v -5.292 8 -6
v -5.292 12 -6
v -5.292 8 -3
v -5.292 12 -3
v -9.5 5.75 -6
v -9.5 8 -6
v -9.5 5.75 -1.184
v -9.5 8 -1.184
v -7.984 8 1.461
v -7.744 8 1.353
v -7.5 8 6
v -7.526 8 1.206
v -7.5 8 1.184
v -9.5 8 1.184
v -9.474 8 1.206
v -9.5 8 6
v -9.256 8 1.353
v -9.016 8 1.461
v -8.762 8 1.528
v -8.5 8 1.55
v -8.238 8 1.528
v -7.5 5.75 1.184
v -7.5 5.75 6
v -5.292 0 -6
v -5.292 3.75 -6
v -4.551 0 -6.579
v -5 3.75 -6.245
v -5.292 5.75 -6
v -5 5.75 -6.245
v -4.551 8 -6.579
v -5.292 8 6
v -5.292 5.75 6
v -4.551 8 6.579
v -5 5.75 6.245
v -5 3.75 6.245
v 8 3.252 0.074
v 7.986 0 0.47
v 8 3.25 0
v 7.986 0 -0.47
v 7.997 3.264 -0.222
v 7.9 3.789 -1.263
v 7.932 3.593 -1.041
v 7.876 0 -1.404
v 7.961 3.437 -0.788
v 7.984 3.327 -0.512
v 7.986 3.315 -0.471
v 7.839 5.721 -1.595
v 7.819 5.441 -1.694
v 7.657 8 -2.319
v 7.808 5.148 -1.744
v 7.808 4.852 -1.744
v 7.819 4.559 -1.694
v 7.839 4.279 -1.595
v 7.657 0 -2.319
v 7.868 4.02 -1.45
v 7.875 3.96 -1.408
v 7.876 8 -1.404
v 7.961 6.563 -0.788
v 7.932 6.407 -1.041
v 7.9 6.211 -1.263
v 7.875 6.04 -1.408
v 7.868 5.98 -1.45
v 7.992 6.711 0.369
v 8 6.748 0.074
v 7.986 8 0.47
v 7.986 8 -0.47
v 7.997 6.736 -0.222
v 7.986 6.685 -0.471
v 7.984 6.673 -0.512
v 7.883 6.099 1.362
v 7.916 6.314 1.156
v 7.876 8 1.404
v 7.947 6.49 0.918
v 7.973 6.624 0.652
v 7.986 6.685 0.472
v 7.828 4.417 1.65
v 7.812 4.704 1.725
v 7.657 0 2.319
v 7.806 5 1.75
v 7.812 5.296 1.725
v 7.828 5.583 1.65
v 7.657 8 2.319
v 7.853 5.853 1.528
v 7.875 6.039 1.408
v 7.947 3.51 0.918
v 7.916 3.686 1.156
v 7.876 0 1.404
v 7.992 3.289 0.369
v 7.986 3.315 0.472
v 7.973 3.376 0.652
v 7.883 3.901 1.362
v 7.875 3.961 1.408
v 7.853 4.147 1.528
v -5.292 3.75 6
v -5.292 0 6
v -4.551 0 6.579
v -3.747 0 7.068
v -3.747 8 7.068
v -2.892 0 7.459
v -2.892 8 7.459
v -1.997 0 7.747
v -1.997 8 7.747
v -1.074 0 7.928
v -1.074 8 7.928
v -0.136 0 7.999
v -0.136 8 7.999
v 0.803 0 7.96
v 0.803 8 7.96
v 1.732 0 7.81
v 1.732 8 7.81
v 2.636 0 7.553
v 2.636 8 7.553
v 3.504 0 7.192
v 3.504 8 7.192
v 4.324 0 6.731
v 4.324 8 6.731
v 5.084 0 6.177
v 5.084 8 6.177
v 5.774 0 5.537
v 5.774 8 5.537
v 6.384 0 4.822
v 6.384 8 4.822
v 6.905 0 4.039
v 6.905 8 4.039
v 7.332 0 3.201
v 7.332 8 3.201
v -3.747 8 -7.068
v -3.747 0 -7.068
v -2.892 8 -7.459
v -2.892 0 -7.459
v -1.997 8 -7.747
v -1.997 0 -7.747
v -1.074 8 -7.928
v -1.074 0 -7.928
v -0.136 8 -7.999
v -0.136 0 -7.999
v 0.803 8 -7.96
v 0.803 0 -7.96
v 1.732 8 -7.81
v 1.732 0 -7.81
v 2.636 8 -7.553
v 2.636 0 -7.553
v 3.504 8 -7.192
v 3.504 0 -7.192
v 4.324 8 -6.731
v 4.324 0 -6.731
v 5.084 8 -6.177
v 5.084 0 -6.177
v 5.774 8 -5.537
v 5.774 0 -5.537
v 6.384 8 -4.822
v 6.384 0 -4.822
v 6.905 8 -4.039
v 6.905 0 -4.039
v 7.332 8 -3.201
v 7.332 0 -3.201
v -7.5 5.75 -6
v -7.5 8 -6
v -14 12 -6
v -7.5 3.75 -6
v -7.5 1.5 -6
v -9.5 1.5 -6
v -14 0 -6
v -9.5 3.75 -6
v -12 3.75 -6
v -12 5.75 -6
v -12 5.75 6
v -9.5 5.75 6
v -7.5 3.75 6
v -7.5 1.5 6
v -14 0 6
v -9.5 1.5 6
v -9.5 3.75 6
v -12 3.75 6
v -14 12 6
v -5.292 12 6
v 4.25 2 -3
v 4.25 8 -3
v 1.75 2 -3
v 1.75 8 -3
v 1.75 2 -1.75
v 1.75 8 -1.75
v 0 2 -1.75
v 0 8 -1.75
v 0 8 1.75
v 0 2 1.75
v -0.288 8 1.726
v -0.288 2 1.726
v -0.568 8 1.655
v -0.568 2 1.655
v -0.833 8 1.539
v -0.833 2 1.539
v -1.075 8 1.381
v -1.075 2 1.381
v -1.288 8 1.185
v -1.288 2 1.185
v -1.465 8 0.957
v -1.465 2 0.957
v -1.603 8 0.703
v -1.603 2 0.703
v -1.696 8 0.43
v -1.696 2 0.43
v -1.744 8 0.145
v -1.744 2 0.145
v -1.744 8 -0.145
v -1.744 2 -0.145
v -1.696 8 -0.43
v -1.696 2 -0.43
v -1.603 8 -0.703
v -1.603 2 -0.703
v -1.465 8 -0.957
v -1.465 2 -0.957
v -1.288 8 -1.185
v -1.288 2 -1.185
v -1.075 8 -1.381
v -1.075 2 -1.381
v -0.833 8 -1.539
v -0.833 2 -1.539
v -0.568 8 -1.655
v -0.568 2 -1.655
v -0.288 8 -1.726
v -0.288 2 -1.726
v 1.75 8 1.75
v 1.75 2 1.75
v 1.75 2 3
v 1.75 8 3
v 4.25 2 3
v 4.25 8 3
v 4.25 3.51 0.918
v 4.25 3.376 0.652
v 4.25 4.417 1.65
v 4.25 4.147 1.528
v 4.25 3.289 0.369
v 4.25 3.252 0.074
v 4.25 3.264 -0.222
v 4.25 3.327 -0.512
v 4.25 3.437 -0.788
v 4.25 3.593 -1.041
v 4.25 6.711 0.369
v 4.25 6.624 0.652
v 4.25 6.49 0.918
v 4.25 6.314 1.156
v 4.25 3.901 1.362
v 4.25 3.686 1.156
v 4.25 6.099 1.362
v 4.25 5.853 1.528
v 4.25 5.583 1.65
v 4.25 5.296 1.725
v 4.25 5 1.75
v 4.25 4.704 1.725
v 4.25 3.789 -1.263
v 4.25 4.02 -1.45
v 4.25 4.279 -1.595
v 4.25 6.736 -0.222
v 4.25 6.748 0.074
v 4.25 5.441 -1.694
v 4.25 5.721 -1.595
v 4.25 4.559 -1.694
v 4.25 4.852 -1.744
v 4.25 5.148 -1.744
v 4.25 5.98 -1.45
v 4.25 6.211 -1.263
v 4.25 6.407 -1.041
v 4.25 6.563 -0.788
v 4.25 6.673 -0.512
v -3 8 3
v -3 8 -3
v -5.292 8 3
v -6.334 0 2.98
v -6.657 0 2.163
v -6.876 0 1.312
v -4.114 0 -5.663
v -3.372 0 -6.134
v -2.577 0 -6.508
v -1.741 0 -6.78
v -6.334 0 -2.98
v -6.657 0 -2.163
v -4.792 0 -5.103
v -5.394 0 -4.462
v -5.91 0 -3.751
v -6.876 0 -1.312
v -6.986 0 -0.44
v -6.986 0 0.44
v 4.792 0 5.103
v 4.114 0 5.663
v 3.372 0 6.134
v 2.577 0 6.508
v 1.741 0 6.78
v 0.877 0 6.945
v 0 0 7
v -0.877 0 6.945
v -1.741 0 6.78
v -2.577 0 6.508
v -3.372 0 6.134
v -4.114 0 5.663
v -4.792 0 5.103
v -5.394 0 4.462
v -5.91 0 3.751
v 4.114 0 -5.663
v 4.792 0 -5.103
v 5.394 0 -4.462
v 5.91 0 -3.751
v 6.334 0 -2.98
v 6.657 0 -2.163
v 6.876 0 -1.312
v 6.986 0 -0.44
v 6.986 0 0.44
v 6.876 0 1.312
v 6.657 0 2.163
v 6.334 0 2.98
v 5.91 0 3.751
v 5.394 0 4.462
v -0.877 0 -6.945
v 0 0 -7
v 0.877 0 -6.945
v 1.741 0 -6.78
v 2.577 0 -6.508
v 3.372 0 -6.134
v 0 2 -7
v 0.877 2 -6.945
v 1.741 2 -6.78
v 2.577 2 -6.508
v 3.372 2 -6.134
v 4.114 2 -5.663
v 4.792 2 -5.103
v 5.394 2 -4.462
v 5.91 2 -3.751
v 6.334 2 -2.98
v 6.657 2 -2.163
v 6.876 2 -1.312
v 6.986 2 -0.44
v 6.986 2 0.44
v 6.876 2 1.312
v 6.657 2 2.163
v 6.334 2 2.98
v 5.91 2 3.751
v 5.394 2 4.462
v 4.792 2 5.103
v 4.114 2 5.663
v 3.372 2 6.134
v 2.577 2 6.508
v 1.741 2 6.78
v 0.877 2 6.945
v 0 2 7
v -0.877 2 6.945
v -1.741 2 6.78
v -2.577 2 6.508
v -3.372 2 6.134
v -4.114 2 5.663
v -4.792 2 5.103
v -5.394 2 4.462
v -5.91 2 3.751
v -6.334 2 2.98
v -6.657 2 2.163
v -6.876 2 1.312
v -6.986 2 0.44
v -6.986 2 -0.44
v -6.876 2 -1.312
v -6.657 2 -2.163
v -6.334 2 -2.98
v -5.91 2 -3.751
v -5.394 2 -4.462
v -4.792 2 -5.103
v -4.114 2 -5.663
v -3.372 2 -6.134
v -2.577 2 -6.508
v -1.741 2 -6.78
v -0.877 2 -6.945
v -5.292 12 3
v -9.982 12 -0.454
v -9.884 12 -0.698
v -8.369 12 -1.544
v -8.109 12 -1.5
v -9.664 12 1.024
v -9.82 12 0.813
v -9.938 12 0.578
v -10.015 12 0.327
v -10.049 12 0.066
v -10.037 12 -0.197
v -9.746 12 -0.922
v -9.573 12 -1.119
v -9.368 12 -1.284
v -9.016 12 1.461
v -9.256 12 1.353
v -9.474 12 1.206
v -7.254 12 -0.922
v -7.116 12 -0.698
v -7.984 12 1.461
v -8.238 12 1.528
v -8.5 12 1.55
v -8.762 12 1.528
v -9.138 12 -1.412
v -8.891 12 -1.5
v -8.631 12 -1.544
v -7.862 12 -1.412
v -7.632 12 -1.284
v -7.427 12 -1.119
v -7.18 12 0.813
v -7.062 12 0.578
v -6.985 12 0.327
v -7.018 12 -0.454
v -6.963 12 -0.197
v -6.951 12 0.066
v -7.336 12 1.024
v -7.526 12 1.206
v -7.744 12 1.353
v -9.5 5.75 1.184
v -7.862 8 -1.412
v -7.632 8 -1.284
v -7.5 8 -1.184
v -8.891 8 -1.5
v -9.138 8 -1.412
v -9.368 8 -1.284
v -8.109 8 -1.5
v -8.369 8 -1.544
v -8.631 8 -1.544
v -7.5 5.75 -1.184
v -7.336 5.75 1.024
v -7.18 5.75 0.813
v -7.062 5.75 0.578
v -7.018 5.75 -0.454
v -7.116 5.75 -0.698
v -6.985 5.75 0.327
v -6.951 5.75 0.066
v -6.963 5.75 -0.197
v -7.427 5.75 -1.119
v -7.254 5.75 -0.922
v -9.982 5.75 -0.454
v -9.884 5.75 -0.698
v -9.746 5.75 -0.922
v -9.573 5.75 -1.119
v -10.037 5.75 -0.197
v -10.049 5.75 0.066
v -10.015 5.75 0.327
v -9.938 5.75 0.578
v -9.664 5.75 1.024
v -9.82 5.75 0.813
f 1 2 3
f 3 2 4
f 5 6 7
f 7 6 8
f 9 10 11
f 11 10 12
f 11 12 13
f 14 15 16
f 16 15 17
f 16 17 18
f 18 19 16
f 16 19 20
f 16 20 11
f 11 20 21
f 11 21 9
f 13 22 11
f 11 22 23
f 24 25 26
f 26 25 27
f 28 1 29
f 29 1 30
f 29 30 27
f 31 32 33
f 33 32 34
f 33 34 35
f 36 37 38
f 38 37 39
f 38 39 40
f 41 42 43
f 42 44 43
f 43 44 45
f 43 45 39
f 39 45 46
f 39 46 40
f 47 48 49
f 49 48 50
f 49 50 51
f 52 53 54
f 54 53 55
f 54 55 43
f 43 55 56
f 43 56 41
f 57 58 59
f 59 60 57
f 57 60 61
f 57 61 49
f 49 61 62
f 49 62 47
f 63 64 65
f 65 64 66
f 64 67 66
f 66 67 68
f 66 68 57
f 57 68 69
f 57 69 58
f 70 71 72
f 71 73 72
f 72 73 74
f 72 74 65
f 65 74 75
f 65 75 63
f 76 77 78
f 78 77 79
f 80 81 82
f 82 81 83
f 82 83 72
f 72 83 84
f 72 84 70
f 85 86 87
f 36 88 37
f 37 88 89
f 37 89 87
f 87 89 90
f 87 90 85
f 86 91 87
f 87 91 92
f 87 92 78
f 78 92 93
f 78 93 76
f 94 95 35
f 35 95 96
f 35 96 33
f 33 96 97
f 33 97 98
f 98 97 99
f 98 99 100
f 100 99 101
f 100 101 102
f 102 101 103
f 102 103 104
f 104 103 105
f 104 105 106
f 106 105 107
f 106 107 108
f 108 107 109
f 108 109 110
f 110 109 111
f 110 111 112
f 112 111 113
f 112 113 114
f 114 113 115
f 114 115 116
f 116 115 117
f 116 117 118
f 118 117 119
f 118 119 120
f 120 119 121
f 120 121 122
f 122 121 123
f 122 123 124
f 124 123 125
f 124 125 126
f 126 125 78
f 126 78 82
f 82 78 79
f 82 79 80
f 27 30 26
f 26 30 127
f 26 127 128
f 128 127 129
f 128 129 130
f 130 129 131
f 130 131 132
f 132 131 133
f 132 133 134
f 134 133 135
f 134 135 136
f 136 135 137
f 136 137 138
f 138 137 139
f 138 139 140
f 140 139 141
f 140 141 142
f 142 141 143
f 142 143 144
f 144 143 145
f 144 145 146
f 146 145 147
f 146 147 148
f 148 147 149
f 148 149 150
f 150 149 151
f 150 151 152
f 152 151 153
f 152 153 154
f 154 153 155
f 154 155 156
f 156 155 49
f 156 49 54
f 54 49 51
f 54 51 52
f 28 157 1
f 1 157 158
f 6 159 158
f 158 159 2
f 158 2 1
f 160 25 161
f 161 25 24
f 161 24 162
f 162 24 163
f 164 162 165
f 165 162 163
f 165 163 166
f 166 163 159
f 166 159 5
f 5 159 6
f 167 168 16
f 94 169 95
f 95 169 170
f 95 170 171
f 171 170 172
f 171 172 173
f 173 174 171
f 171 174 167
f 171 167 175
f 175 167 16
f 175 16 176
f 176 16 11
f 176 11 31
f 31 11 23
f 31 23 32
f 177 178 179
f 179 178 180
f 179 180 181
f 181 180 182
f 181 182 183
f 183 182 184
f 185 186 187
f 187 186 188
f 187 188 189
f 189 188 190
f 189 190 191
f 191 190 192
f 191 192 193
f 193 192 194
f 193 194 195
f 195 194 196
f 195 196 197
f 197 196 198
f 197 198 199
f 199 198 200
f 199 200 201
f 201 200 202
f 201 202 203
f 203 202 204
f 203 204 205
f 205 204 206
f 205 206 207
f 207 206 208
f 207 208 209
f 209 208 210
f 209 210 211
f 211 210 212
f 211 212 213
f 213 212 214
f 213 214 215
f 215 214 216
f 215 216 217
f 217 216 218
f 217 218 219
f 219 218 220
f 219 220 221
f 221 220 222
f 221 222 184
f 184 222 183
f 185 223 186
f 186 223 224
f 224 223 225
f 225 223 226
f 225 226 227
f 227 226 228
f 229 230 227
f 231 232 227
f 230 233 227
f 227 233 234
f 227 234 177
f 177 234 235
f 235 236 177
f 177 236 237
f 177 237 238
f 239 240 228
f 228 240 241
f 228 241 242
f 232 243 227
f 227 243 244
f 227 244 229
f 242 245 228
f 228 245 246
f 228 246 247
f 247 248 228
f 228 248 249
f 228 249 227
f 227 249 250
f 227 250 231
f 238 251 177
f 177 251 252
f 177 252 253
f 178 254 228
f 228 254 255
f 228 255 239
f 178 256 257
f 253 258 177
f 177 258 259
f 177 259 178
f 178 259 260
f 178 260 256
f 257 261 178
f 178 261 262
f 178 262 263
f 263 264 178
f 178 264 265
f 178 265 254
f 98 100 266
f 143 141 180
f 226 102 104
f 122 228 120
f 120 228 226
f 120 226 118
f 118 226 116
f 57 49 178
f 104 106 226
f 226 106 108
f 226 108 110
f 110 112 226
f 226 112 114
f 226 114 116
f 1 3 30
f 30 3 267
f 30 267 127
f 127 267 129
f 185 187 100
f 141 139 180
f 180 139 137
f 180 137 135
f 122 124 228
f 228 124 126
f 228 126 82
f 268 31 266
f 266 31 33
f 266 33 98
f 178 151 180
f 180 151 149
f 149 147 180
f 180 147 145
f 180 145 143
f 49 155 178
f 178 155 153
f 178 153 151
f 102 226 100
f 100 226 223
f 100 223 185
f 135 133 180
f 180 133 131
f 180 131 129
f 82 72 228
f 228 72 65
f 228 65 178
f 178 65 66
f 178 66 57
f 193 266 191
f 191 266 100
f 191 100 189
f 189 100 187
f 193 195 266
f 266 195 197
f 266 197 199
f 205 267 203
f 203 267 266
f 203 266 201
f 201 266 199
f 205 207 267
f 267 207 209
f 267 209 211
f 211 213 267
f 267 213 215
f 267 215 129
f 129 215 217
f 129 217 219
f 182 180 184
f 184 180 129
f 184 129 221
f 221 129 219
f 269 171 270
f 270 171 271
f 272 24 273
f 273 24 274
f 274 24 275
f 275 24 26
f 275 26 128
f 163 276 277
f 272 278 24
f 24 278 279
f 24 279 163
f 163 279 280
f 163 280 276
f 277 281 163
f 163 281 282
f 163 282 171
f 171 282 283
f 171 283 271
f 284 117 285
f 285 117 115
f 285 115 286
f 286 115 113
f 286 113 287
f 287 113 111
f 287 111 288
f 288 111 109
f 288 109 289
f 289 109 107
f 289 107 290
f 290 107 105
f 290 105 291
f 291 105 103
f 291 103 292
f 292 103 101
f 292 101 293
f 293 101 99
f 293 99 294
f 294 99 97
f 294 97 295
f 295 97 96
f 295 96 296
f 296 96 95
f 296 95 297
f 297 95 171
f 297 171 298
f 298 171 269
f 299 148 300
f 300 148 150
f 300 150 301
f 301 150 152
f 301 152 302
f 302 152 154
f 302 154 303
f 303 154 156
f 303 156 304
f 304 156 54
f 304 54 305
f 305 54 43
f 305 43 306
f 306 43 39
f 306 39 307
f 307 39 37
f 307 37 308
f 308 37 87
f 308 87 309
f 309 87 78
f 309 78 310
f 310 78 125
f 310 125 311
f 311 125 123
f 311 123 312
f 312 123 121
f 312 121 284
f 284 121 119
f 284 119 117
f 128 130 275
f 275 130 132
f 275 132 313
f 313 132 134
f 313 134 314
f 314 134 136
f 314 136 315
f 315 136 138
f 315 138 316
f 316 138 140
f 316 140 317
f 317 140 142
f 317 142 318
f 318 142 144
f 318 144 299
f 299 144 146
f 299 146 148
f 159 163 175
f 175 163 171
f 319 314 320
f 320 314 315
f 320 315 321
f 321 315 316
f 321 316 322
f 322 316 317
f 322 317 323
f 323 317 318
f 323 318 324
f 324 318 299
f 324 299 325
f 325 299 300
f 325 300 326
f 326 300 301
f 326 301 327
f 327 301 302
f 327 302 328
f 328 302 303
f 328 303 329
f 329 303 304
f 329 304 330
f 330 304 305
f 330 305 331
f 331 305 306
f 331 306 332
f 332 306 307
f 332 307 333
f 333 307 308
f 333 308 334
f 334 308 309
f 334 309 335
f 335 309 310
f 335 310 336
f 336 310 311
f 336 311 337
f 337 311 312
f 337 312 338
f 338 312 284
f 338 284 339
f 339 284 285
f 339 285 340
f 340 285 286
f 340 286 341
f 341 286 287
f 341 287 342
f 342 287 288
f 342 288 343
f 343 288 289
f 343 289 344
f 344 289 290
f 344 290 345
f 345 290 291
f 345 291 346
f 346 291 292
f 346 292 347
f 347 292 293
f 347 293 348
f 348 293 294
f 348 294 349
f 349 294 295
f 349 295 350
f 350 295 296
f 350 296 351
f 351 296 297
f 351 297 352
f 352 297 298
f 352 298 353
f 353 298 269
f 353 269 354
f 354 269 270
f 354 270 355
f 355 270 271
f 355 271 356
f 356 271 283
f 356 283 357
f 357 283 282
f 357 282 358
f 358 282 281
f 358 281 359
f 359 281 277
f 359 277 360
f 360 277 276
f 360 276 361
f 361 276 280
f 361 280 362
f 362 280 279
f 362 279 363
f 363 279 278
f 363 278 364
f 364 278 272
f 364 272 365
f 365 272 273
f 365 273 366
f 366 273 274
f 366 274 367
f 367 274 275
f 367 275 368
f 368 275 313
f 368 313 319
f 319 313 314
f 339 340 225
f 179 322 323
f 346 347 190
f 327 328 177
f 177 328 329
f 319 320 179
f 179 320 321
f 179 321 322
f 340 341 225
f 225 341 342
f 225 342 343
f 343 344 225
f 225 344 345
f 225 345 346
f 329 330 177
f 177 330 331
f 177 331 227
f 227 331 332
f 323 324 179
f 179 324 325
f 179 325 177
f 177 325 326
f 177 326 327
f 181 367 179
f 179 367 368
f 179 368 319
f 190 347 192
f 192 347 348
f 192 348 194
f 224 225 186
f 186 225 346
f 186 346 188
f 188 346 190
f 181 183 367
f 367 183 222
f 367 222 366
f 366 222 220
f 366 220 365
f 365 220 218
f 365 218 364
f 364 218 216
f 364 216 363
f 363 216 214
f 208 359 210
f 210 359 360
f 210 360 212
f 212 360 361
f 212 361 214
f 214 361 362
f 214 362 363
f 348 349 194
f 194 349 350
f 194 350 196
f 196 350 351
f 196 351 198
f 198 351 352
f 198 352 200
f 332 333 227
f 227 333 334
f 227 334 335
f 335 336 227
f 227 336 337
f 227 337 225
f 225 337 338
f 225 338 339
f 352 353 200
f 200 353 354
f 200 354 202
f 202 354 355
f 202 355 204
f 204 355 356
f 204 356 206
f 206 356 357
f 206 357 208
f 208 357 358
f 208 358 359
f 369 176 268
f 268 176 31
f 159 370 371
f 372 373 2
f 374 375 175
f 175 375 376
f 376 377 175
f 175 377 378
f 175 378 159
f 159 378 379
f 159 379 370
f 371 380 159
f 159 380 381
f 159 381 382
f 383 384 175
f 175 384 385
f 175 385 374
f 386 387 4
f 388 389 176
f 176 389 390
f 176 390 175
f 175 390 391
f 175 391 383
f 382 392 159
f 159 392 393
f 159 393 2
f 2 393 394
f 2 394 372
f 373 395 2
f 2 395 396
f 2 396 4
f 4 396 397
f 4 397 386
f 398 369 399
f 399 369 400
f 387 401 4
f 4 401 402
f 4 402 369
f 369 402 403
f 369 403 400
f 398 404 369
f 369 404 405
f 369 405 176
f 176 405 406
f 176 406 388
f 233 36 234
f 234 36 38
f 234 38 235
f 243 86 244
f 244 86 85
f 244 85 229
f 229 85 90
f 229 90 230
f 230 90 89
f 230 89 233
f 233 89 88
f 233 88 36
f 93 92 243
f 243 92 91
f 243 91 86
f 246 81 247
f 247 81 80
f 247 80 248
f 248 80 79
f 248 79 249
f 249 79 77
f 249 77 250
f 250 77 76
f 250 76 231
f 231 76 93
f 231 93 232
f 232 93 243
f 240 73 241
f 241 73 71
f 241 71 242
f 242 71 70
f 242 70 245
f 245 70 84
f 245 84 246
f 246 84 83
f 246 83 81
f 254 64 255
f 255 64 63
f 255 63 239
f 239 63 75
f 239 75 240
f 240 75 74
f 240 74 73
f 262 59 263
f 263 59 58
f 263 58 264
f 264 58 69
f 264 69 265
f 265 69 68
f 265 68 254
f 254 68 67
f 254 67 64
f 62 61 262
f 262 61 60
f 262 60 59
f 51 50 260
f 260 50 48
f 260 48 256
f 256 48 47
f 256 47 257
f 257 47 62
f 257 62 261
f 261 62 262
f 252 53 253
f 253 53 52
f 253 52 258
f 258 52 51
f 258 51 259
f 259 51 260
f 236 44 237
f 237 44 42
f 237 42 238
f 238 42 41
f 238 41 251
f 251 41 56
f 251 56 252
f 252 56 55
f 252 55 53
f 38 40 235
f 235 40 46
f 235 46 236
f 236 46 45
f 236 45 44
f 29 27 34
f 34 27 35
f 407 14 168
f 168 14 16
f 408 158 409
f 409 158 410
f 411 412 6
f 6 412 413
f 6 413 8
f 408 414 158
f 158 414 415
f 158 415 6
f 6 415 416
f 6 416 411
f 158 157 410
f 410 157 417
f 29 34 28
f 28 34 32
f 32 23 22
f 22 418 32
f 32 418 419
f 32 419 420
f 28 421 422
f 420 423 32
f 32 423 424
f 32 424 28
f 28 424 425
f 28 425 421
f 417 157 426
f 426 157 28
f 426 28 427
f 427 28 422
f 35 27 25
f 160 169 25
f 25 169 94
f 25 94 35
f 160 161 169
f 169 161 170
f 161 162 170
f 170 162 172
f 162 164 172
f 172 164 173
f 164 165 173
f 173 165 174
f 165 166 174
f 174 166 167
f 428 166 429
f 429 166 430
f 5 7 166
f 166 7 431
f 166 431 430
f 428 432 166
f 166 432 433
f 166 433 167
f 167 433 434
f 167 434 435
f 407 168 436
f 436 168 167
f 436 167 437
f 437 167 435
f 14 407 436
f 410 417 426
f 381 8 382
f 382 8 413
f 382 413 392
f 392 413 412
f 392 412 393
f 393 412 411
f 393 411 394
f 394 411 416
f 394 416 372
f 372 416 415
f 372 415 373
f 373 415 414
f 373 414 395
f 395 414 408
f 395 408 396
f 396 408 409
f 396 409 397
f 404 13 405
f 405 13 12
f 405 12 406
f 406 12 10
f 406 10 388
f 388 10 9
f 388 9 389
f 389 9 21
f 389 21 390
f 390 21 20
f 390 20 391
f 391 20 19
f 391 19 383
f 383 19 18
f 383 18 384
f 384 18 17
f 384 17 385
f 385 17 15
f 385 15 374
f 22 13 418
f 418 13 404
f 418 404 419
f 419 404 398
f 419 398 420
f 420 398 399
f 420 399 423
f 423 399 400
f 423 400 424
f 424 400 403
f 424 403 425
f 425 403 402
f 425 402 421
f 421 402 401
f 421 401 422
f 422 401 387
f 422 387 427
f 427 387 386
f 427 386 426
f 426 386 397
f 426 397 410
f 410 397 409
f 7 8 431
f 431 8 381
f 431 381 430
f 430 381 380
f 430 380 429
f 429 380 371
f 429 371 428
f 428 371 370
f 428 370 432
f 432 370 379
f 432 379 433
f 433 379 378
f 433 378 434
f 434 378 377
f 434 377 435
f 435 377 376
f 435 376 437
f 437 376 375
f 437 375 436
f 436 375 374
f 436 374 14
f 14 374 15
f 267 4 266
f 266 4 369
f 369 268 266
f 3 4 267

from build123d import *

# Parameters (mm, degrees)
EXTRUDE_1_DEPTH          = 8
SKETCH_4_R               = 7
CUT_EXTRUDE_3_DEPTH      = 2
SKETCH_7_W               = 8.708497378
SKETCH_7_H               = 12
EXTRUDE_2_DEPTH          = 4
SKETCH_2_R               = 1.75
CUT_EXTRUDE_1_DEPTH      = 24.260750203
CUT_EXTRUDE_2_DEPTH      = 33.695565574
CUT_EXTRUDE_2_DEPTH_BACK = 33.695565574
CUT_EXTRUDE_4_REACH      = 22.1
SKETCH_5_R               = 1.55
RIB_1_REACH              = 22.1
SKETCH_8_WALL_W          = 46.80938155
SKETCH_8_WALL_H          = 6


with BuildPart() as part:
    # 草图1 → 凸台-拉伸1 (new body)
    with BuildSketch(Plane(origin=(0, 0, 0), x_dir=(1, 0, 0), z_dir=(0, 1, 0))):
        with BuildLine():
            Line((-14, 6), (-5.291502622, 6))
            ThreePointArc((-5.291502622, 6), (8, 0), (-5.291502622, -6))
            Line((-5.291502622, -6), (-14, -6))
            Line((-14, -6), (-14, 6))
        make_face()
        with BuildLine():
            Line((1.75, 3), (1.75, 1.75))
            Line((1.75, 1.75), (0, 1.75))
            ThreePointArc((0, 1.75), (-1.75, 0), (0, -1.75))
            Line((0, -1.75), (1.75, -1.75))
            Line((1.75, -1.75), (1.75, -3))
            Line((1.75, -3), (4.25, -3))
            Line((4.25, -3), (4.25, 3))
            Line((4.25, 3), (1.75, 3))
        make_face(mode=Mode.SUBTRACT)
    extrude(amount=EXTRUDE_1_DEPTH)

    # 草图4 → 切除-拉伸3 (cut)
    with BuildSketch(Plane.XZ):
        with Locations(Location((0, 0, 0), (0, 0, 270))):
            Circle(SKETCH_4_R)
    extrude(amount=-CUT_EXTRUDE_3_DEPTH, mode=Mode.SUBTRACT)

    # 草图7 → 凸台-拉伸2 (add)
    with BuildSketch(Plane(origin=(0, 8, 0), x_dir=(1, 0, 0), z_dir=(0, 1, 0))):
        with Locations((-9.645751311, 0)):
            Rectangle(SKETCH_7_W, SKETCH_7_H)
    extrude(amount=EXTRUDE_2_DEPTH)

    # 草图2 → 切除-拉伸1 (cut, through all)
    with BuildSketch(Plane.ZY.offset(-4.25)):
        with Locations((0, 5)):
            Circle(SKETCH_2_R)
    extrude(amount=-CUT_EXTRUDE_1_DEPTH, mode=Mode.SUBTRACT)

    # 草图3 → 切除-拉伸2 (cut, two sides: drawn at the far end of the back side and taken through both)
    with BuildSketch(Plane(origin=(-19, 0, 6), x_dir=(-1, 0, 0), z_dir=(0, 0, -1)).offset(-CUT_EXTRUDE_2_DEPTH_BACK)):
        Polygon((-11.5, 1.5), (-9.5, 1.5), (-9.5, 3.75), (-7, 3.75), (-7, 5.75), (-9.5, 5.75), (-9.5, 8), (-11.5, 8), (-11.5, 5.75), (-14, 5.75), (-14, 3.75), (-11.5, 3.75), align=None)
    extrude(amount=CUT_EXTRUDE_2_DEPTH + CUT_EXTRUDE_2_DEPTH_BACK, mode=Mode.SUBTRACT)

    # 草图5 → 切除-拉伸4 (cut, up to next)
    with BuildSketch(Plane(origin=(0, 12, 0), x_dir=(1, 0, 0), z_dir=(0, 1, 0)), mode=Mode.PRIVATE) as cut_extrude_4_sk1:
        with Locations(Location((-8.5, 0, 0), (0, 0, 270))):
            Circle(SKETCH_5_R)
    cut_extrude_4_tool1 = extrude(cut_extrude_4_sk1.sketch, amount=-CUT_EXTRUDE_4_REACH, mode=Mode.PRIVATE) & part.part
    add(cut_extrude_4_tool1.solids().sort_by_distance((-8.5, 12, 0))[0], mode=Mode.SUBTRACT)

    # 草图8 wall → 筋1 (add, up to next)
    with BuildSketch(Plane(origin=(-4.145751311, 10, 0), x_dir=(0.497085200913, -0.867701736216, 0), z_dir=(0.867701736216, 0.497085200913, 0)), mode=Mode.PRIVATE) as rib_1_sk1:
        Rectangle(SKETCH_8_WALL_W, SKETCH_8_WALL_H)
    rib_1_tool1 = extrude(rib_1_sk1.sketch, amount=-RIB_1_REACH, mode=Mode.PRIVATE) - part.part
    add(rib_1_tool1.solids().sort_by_distance((-4.145751311, 10, 0))[0])


solid = part.part
